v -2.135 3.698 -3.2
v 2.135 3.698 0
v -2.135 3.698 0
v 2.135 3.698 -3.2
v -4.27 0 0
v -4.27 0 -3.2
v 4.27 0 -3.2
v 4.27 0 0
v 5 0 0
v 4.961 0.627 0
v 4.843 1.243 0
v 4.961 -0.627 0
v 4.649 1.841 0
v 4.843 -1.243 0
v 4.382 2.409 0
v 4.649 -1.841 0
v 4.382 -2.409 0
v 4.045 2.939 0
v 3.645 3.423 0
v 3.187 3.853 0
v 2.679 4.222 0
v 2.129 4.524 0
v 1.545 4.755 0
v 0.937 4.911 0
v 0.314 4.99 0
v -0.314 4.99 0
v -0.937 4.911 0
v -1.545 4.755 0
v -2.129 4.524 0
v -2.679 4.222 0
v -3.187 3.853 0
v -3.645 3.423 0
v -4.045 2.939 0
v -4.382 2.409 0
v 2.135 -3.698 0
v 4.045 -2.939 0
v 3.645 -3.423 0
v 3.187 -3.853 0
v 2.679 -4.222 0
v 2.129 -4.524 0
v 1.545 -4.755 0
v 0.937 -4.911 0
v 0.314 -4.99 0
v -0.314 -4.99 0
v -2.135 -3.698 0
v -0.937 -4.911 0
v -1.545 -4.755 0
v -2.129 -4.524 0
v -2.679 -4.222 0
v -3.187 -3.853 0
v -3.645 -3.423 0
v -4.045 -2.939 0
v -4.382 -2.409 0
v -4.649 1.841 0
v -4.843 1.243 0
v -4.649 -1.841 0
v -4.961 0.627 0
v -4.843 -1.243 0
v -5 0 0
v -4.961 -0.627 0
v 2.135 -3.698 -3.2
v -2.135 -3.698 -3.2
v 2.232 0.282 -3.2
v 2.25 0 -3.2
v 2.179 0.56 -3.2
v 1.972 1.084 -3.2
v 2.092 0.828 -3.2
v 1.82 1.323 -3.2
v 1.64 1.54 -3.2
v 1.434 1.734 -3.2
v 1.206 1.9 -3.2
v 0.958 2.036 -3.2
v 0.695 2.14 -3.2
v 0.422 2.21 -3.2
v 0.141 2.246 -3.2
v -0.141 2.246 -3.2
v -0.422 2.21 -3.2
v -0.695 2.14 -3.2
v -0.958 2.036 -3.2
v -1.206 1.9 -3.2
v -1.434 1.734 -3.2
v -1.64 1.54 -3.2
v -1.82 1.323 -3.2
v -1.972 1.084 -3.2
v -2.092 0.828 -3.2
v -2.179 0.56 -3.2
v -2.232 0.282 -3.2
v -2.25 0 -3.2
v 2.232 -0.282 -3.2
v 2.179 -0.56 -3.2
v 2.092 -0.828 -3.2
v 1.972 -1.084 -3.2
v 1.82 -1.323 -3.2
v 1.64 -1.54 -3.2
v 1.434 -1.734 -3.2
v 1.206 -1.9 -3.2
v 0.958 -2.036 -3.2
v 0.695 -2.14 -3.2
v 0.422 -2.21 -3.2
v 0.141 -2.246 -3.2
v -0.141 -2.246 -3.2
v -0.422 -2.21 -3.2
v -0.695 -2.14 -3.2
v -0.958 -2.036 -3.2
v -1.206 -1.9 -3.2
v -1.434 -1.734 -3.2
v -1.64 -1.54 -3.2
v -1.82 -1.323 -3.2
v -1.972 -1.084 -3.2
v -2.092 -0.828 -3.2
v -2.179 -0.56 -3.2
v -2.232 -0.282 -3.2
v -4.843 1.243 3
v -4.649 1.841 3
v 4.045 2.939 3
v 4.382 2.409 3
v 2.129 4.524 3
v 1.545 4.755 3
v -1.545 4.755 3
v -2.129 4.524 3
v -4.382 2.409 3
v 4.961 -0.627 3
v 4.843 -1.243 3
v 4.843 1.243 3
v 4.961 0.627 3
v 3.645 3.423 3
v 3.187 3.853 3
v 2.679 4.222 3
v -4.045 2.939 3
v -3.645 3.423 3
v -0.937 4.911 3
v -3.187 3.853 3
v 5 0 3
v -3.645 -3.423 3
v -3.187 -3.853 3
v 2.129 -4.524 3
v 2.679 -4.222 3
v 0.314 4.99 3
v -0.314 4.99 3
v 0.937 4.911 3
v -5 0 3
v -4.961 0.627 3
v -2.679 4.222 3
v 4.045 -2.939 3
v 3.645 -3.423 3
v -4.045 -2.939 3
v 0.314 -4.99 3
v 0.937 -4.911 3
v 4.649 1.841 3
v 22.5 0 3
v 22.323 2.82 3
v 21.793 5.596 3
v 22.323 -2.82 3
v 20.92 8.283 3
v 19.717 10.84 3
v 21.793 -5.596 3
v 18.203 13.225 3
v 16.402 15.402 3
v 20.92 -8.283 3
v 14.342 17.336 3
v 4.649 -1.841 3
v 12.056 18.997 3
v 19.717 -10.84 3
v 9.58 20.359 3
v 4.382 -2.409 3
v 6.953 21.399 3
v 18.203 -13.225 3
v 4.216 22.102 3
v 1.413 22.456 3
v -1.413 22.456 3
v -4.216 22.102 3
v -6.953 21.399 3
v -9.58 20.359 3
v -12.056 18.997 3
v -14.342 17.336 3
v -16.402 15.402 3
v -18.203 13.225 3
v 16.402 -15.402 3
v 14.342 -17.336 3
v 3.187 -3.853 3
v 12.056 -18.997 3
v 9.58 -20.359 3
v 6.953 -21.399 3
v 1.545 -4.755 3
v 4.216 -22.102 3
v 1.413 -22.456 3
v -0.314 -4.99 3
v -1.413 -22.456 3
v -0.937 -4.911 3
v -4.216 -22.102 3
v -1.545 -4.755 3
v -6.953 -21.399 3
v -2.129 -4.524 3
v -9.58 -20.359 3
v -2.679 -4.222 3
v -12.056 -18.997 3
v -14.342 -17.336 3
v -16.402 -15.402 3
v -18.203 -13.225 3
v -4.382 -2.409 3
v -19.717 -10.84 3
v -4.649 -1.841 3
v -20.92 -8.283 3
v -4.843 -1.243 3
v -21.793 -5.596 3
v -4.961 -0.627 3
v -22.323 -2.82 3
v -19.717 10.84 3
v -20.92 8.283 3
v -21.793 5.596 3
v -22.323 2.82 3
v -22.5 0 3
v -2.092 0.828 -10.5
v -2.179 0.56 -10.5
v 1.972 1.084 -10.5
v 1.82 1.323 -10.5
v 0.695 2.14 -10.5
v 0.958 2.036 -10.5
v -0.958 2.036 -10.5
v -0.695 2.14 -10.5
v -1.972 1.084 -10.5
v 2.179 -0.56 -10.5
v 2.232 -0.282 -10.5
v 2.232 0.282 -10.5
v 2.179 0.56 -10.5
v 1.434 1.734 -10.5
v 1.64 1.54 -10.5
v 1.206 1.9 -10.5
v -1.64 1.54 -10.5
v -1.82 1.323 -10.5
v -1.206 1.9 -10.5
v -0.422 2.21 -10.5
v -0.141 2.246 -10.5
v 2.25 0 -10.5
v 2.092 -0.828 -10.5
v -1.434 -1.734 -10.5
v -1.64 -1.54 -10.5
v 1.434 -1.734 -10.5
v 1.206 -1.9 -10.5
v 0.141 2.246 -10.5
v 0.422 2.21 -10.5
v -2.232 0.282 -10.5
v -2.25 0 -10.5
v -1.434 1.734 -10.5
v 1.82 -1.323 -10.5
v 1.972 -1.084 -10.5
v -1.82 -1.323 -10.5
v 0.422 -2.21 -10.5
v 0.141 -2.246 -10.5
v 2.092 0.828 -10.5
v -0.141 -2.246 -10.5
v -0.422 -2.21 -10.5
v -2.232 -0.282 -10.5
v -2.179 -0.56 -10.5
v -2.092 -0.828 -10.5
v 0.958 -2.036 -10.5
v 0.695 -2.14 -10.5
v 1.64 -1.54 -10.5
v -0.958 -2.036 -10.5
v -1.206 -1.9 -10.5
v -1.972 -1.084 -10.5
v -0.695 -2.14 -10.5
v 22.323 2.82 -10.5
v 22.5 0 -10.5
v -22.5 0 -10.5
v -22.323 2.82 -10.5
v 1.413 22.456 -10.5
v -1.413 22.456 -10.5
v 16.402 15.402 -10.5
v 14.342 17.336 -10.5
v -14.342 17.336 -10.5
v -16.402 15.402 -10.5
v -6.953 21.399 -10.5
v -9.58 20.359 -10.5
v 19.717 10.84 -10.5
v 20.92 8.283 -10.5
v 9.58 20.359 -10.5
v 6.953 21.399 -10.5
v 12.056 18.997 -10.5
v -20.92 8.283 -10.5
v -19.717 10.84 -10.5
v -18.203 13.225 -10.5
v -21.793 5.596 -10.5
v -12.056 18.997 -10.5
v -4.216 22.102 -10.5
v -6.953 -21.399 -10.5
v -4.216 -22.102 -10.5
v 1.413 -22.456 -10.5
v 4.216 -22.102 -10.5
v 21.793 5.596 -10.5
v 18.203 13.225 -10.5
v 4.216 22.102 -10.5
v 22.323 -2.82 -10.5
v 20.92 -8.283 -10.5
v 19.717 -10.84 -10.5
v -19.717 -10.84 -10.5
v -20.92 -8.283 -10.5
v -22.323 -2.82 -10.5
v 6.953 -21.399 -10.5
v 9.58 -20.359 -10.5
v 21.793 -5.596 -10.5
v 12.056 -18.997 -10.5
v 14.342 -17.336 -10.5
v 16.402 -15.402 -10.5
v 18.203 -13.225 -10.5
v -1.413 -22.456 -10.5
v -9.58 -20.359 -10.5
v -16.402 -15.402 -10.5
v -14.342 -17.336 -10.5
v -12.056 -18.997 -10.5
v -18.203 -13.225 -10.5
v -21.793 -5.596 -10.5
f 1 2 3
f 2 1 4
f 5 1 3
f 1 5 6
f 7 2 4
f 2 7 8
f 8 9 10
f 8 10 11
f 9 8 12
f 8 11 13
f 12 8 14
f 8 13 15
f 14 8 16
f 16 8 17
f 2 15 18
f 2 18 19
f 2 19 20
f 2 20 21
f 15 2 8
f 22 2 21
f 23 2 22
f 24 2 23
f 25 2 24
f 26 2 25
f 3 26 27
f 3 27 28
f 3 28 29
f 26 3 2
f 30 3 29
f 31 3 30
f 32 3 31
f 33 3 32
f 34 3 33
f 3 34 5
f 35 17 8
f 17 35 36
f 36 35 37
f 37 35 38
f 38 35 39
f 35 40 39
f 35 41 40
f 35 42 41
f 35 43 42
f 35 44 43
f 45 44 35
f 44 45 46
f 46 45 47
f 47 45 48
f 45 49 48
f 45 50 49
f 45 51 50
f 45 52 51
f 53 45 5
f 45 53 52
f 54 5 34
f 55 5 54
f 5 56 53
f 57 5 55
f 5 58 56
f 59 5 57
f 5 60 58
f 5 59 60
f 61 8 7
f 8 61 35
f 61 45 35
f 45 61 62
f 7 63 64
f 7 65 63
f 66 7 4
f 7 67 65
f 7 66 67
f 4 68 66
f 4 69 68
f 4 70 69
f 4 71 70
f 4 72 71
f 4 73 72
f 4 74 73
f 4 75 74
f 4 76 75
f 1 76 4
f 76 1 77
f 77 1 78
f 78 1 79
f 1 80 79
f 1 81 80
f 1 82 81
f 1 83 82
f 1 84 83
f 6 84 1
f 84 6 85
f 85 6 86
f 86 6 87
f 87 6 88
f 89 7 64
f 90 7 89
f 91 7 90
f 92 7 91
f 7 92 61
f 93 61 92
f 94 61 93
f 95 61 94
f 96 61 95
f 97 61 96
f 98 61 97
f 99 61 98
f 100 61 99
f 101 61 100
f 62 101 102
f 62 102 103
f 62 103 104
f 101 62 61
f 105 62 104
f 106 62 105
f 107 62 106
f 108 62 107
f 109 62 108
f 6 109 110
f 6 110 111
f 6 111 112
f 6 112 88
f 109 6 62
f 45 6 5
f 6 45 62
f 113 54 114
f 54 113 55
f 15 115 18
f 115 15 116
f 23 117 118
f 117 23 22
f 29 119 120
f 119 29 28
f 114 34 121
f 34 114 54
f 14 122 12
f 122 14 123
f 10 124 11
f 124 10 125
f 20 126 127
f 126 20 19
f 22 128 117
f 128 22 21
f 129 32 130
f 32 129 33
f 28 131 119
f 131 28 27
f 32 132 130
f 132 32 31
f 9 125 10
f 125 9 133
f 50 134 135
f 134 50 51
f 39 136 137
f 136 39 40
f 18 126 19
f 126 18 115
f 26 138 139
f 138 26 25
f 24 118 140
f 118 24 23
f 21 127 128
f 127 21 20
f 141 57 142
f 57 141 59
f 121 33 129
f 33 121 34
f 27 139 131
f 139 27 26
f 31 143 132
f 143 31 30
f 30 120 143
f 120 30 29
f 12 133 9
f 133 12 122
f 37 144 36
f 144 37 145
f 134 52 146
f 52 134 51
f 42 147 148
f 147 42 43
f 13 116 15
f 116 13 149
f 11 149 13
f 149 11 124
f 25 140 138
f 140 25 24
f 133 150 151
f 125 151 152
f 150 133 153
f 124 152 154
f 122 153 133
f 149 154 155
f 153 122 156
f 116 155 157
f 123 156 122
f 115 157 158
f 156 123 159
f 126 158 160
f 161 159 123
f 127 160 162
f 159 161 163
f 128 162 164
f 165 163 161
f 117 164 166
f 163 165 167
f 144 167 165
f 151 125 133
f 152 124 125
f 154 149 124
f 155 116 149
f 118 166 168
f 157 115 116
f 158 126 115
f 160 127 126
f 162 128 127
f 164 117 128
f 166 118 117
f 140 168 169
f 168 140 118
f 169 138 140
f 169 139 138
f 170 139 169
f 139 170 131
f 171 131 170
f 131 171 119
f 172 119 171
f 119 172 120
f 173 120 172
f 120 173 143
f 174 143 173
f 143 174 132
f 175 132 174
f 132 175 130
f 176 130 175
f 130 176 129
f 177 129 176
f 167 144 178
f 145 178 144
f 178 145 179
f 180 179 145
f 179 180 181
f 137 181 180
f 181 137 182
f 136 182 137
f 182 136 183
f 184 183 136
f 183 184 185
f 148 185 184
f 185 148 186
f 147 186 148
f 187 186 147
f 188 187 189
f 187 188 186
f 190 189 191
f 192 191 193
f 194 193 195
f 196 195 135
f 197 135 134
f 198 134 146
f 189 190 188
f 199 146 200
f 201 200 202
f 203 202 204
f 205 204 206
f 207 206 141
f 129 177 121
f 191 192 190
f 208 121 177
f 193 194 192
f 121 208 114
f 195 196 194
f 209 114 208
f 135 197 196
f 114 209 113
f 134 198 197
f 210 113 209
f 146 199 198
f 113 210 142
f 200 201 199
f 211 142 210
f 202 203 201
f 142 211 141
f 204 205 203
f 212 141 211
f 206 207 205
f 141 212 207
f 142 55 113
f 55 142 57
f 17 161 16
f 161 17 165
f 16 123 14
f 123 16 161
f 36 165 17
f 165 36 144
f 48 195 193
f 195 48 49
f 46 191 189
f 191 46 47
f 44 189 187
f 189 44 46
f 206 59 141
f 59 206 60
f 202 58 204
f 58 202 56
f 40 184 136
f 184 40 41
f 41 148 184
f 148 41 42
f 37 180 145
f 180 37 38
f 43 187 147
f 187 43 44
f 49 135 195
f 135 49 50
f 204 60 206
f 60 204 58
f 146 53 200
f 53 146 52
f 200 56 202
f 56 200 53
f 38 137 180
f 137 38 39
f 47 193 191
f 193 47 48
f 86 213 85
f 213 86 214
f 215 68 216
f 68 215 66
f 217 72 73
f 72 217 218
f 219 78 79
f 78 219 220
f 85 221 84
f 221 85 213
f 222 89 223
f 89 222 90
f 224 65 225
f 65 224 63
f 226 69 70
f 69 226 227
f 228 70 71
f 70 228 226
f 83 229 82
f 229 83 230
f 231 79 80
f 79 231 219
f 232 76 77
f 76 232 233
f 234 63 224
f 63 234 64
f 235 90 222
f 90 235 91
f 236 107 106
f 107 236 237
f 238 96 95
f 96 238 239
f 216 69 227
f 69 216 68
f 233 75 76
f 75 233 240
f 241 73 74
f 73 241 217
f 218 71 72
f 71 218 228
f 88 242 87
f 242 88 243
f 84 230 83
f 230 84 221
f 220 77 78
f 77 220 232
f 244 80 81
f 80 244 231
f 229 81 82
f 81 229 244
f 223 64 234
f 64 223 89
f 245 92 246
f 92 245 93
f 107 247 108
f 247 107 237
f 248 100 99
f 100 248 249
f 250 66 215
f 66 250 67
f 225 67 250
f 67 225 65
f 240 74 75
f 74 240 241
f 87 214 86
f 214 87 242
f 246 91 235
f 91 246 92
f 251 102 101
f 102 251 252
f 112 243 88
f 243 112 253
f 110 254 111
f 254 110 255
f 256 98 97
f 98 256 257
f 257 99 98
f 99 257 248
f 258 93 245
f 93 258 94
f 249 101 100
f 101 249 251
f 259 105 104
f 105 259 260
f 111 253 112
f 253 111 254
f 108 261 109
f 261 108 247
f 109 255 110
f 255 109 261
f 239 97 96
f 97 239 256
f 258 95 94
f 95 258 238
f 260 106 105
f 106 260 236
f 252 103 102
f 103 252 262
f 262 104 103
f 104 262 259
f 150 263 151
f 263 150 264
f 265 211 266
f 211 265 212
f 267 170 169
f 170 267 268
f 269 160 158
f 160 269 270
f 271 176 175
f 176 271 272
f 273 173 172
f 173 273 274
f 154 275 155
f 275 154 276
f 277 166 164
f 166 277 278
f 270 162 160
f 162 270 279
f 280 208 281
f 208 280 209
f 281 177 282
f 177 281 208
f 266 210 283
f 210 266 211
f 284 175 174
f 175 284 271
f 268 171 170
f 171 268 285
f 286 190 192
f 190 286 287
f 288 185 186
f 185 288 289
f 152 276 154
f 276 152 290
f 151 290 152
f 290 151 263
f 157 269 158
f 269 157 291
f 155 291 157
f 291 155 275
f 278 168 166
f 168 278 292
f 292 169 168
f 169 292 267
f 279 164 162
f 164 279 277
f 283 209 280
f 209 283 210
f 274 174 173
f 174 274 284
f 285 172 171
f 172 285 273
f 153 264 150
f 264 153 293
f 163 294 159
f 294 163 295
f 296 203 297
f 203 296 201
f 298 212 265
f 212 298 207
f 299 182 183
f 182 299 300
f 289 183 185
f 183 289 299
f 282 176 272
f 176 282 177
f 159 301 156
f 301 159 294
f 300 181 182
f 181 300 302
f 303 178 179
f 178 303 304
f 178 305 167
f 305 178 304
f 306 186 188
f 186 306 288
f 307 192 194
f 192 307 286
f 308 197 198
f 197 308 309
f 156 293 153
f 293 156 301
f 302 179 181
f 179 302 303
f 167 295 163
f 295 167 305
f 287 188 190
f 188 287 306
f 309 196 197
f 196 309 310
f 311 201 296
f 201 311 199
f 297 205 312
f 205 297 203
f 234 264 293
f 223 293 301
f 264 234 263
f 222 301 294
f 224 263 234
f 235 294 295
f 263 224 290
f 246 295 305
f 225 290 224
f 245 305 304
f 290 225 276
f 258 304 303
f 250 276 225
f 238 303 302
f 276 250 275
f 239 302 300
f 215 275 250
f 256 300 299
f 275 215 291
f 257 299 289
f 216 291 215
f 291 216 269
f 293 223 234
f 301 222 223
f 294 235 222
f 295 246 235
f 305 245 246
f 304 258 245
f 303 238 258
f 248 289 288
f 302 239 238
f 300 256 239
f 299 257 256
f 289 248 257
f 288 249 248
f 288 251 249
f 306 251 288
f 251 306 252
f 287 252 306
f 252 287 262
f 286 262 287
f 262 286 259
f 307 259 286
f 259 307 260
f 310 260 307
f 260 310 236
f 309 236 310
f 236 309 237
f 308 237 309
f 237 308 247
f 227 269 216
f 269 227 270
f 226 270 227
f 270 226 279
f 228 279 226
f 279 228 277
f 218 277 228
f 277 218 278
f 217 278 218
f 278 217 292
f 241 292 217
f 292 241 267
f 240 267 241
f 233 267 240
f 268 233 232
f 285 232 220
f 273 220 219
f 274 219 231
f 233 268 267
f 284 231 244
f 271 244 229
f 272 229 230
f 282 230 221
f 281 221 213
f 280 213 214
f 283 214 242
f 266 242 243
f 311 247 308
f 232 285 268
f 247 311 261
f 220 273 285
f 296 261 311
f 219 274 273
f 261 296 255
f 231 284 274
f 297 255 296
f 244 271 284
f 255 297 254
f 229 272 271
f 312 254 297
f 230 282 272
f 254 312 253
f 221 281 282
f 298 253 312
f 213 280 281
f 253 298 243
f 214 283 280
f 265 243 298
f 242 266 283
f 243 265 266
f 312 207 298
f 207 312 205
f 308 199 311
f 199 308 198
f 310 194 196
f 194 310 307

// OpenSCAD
$fn = 50;

difference() {
	union() {
		translate(v = [0, 0, -10.5]) {
			cylinder(h = 13.5, r = 22.5);
		}
	}
	union() {
		translate(v = [0, 0, 0]) {
			rotate(a = [0, 0, 0]) {
				difference() {
					union() {
						translate(v = [0, 0, -3.2]) {
							linear_extrude(height = 3.2) {
								polygon(points = [[4.2698, 0.0], [2.1349000000000005, 3.697755269078796], [-2.134899999999999, 3.6977552690787965], [-4.2698, 5.228996902999369e-16], [-2.134900000000002, -3.6977552690787956], [2.1348999999999974, -3.697755269078798]]);
							}
						}
					}
					union();
				}
			}
		}
		#cylinder(h = 3, r = 5.0);
		#translate(v = [0, 0, -100.0]) {
			cylinder(h = 200, r = 2.25);
		}
	}
}
